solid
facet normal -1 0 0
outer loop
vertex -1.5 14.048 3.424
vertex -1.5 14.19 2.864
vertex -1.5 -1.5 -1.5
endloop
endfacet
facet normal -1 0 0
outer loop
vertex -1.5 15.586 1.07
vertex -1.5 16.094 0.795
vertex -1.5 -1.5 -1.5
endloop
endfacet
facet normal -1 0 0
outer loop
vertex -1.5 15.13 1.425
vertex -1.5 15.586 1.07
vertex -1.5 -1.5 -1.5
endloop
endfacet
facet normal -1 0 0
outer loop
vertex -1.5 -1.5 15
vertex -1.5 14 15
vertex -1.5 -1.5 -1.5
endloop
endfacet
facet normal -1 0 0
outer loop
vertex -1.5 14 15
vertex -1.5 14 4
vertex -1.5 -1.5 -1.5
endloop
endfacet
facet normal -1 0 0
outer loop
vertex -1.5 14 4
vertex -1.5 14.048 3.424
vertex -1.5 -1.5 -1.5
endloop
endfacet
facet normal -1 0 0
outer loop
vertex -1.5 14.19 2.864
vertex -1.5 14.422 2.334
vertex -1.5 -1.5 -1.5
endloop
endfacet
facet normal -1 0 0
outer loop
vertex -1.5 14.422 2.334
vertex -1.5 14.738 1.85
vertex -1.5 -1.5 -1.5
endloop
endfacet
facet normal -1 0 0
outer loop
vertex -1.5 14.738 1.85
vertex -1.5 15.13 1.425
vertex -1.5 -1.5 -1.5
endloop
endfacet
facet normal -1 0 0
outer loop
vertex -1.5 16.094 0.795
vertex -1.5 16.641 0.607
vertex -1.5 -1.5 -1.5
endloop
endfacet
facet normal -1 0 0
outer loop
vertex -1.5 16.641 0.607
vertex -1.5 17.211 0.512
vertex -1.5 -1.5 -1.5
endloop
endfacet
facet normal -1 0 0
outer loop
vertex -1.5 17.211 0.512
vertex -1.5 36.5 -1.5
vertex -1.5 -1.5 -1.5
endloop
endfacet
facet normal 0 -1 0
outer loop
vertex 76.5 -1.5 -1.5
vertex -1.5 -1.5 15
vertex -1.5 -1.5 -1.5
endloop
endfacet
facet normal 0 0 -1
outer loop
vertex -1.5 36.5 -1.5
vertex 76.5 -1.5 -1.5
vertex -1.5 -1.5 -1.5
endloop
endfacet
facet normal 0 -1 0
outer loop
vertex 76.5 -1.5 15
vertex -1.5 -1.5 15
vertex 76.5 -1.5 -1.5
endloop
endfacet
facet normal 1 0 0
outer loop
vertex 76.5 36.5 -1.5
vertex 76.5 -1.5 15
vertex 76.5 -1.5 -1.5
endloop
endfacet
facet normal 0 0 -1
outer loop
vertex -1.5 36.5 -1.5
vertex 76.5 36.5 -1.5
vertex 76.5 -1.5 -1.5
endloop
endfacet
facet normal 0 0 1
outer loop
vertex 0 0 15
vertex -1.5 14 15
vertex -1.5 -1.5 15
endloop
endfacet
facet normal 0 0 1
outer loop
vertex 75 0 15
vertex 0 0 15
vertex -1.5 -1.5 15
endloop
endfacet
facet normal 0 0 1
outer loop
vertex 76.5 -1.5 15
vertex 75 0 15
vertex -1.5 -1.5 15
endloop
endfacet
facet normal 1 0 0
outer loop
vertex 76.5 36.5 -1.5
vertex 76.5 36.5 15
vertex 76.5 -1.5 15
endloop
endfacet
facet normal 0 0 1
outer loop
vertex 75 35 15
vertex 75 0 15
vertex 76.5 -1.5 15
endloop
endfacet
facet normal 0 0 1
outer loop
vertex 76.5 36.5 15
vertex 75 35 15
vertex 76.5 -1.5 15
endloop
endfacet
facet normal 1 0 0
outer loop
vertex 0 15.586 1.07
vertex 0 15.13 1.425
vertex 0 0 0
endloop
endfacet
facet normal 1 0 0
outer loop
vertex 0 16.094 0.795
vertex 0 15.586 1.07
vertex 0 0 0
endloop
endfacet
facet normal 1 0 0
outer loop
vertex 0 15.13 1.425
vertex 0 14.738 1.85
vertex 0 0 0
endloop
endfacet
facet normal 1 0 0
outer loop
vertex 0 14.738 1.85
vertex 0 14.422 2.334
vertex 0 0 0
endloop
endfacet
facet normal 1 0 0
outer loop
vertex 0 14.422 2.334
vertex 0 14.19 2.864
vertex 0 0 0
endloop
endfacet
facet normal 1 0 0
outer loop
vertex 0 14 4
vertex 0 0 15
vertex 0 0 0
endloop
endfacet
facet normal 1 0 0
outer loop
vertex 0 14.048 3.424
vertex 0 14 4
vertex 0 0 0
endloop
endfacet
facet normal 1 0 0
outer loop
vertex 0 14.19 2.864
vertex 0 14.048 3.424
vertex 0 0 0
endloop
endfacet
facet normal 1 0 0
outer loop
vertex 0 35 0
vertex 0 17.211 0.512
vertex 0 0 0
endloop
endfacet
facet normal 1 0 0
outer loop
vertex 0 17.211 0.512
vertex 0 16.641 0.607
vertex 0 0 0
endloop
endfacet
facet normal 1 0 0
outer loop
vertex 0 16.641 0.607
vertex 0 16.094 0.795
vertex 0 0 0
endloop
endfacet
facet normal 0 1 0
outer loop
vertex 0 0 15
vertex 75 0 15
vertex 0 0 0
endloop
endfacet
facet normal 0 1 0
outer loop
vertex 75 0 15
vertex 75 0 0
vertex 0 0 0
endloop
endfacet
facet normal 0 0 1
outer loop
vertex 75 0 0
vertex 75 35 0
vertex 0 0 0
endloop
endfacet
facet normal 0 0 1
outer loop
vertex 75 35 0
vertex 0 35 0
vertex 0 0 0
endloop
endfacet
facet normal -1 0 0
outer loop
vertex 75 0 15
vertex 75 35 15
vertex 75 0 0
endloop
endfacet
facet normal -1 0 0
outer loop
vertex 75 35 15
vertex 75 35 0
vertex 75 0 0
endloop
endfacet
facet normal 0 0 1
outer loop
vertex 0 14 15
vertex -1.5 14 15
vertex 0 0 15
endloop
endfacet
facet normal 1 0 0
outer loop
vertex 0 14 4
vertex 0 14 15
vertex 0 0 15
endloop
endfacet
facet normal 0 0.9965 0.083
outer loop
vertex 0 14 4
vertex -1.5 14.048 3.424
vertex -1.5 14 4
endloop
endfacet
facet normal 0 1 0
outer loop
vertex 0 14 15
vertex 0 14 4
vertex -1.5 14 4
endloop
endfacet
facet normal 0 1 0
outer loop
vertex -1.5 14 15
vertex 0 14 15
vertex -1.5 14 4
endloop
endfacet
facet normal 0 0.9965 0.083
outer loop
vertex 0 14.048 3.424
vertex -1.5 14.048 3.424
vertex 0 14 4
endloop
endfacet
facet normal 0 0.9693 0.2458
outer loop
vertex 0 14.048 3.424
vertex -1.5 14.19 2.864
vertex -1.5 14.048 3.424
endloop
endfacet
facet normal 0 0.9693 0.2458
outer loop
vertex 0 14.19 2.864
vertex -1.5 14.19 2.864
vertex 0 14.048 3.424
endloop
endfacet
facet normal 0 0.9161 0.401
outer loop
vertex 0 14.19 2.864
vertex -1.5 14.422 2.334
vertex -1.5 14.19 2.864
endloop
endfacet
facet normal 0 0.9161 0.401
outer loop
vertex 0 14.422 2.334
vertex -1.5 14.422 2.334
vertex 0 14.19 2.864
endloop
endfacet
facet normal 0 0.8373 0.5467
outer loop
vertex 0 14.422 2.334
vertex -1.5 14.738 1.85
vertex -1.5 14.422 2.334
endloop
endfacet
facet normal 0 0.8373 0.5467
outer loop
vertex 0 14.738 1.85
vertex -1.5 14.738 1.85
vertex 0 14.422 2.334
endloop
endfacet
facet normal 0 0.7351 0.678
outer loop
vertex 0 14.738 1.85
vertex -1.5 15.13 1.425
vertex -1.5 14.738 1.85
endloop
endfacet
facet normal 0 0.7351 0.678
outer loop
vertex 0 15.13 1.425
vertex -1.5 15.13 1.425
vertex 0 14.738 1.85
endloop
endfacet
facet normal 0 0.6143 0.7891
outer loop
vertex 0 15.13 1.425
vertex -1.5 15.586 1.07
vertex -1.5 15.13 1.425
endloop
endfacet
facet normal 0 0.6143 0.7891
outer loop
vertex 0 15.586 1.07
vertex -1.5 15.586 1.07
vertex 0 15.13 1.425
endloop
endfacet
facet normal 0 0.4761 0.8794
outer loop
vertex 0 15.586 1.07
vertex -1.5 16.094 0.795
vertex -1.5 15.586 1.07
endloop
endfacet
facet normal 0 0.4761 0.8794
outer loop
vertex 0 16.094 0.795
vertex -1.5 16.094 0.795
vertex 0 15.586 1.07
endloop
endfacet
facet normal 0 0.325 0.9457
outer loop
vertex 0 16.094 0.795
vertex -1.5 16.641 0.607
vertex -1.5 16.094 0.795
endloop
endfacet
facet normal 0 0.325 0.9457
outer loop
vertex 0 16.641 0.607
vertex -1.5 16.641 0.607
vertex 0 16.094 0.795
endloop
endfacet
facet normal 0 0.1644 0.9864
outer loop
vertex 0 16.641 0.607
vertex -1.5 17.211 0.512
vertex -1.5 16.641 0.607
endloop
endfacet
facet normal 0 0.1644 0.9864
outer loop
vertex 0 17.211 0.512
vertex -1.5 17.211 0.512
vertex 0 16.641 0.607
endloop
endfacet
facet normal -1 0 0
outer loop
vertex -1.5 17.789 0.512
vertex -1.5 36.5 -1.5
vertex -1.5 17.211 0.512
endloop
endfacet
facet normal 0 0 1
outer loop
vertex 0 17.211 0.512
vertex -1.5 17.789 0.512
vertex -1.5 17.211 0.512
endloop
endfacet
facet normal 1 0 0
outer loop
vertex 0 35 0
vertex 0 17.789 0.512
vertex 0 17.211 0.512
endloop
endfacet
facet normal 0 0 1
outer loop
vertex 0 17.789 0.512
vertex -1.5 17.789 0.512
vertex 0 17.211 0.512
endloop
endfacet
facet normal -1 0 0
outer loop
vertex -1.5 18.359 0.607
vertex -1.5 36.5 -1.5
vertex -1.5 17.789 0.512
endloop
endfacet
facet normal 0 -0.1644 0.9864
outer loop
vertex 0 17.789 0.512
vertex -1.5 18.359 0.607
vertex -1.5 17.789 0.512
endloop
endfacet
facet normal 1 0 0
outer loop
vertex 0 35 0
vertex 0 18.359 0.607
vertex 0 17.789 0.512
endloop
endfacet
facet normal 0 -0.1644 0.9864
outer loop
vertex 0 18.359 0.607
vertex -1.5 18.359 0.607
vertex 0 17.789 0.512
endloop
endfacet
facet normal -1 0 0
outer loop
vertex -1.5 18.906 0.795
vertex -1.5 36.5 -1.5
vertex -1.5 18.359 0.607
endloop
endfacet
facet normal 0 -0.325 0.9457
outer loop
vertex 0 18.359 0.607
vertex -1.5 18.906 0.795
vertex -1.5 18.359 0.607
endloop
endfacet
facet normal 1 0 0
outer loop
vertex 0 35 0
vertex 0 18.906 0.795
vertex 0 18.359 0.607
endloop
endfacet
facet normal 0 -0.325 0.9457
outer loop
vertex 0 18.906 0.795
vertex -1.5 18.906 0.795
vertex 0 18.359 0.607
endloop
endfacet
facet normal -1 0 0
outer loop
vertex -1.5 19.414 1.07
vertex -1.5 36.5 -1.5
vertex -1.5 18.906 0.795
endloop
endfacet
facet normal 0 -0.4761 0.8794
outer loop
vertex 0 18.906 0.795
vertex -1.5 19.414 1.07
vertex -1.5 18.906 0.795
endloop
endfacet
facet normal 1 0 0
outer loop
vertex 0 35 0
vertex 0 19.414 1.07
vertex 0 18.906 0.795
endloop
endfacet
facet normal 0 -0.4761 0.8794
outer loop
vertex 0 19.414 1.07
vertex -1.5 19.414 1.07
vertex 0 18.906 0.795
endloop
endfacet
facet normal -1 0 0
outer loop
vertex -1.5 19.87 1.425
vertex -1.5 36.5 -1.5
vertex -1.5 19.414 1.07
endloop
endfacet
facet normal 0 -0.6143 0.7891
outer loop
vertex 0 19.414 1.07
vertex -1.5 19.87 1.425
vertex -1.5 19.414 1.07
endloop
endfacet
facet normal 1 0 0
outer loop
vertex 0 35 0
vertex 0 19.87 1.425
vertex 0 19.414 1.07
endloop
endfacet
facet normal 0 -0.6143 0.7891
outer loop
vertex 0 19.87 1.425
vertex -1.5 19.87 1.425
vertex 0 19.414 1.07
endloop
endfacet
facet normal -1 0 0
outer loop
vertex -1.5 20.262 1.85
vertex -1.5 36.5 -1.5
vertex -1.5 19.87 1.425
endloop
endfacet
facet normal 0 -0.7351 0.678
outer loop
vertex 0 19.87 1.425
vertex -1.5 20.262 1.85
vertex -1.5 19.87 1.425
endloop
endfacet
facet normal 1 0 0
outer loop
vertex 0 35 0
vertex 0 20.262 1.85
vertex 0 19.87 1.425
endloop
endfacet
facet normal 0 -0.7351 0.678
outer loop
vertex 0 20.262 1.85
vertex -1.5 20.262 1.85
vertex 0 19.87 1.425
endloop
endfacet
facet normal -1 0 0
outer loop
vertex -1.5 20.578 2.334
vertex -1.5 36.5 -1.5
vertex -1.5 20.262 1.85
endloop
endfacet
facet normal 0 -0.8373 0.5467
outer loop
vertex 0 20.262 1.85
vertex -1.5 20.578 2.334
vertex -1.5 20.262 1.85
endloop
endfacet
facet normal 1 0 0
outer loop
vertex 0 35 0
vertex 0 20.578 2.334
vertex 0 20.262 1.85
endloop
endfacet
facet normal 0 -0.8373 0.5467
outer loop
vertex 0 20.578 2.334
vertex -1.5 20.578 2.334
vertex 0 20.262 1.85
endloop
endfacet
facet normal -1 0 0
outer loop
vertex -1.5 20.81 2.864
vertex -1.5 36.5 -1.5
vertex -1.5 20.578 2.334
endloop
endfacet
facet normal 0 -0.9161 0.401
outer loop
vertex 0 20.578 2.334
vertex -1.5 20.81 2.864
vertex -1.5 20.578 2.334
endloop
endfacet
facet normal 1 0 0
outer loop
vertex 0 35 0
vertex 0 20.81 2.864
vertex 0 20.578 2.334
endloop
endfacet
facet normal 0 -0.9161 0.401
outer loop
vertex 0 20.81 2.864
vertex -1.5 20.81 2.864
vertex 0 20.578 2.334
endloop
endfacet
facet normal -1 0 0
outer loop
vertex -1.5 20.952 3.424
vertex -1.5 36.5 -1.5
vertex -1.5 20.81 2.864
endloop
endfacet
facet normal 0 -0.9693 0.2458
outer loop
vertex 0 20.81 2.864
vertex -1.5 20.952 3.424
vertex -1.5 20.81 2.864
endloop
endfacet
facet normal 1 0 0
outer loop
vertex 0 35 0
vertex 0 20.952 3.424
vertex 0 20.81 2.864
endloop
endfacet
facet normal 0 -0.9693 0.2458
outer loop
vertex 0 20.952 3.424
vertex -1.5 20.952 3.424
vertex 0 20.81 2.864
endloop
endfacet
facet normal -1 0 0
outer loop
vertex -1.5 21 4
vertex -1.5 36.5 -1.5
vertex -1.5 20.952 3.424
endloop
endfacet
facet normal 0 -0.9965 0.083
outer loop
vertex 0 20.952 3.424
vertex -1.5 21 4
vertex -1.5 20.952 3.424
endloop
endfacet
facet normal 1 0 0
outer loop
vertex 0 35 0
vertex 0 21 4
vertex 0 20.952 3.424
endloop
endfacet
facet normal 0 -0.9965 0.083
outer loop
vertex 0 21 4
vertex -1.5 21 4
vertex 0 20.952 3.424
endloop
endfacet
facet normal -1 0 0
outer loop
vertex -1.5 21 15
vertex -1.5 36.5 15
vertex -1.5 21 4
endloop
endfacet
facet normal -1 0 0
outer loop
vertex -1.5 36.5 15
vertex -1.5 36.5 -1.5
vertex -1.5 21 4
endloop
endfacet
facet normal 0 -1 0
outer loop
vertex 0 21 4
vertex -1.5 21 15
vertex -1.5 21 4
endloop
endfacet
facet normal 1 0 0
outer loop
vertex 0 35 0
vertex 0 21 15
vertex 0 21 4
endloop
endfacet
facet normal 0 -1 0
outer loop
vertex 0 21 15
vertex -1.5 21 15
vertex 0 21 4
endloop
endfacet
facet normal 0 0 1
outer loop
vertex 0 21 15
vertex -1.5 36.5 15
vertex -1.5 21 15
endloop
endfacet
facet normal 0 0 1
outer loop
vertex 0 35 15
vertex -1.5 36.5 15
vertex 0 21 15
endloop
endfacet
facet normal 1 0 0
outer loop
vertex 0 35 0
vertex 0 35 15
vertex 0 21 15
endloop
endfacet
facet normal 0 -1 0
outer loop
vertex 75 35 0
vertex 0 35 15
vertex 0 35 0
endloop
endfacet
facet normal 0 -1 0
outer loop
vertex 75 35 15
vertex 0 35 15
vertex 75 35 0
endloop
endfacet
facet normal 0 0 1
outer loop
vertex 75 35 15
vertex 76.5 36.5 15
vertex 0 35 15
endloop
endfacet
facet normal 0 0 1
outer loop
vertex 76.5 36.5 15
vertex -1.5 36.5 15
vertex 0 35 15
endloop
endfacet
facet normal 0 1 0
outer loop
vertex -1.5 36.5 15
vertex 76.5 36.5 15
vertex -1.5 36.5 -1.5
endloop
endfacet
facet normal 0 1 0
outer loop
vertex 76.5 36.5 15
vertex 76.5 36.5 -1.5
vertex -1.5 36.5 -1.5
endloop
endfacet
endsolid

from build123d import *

# Parameters (mm, degrees)
ESQUISSE1_W             = 75
ESQUISSE1_H             = 35
BOSS_EXTRU_1_DEPTH      = 15
COQUE1_T                = 1.5
ENL_V_MAT_EXTRU_1_DEPTH = 15


with BuildPart() as part:
    # Esquisse1 → Boss.-Extru.1 (new body)
    with BuildSketch(Plane.XY):
        with Locations((37.5, 17.5)):
            Rectangle(ESQUISSE1_W, ESQUISSE1_H)
    extrude(amount=BOSS_EXTRU_1_DEPTH)

    # Coque1
    coque1_openings = [part.faces().sort_by_distance(p)[0] for p in [
        (37.5, 17.5, 15),
    ]]
    offset(amount=COQUE1_T, openings=coque1_openings, kind=Kind.INTERSECTION)

    # Esquisse2 → Enlèv. mat.-Extru.1 (cut)
    with BuildSketch(Plane.ZY.offset(1.5)):
        with BuildLine():
            Line((4, 21), (15.502923277, 21))
            ThreePointArc((15.502923277, 21), (19.002923277, 17.5), (15.502923277, 14))
            Line((15.502923277, 14), (4, 14))
            ThreePointArc((4, 14), (0.5, 17.5), (4, 21))
        make_face()
    extrude(amount=-ENL_V_MAT_EXTRU_1_DEPTH, mode=Mode.SUBTRACT)


solid = part.part
